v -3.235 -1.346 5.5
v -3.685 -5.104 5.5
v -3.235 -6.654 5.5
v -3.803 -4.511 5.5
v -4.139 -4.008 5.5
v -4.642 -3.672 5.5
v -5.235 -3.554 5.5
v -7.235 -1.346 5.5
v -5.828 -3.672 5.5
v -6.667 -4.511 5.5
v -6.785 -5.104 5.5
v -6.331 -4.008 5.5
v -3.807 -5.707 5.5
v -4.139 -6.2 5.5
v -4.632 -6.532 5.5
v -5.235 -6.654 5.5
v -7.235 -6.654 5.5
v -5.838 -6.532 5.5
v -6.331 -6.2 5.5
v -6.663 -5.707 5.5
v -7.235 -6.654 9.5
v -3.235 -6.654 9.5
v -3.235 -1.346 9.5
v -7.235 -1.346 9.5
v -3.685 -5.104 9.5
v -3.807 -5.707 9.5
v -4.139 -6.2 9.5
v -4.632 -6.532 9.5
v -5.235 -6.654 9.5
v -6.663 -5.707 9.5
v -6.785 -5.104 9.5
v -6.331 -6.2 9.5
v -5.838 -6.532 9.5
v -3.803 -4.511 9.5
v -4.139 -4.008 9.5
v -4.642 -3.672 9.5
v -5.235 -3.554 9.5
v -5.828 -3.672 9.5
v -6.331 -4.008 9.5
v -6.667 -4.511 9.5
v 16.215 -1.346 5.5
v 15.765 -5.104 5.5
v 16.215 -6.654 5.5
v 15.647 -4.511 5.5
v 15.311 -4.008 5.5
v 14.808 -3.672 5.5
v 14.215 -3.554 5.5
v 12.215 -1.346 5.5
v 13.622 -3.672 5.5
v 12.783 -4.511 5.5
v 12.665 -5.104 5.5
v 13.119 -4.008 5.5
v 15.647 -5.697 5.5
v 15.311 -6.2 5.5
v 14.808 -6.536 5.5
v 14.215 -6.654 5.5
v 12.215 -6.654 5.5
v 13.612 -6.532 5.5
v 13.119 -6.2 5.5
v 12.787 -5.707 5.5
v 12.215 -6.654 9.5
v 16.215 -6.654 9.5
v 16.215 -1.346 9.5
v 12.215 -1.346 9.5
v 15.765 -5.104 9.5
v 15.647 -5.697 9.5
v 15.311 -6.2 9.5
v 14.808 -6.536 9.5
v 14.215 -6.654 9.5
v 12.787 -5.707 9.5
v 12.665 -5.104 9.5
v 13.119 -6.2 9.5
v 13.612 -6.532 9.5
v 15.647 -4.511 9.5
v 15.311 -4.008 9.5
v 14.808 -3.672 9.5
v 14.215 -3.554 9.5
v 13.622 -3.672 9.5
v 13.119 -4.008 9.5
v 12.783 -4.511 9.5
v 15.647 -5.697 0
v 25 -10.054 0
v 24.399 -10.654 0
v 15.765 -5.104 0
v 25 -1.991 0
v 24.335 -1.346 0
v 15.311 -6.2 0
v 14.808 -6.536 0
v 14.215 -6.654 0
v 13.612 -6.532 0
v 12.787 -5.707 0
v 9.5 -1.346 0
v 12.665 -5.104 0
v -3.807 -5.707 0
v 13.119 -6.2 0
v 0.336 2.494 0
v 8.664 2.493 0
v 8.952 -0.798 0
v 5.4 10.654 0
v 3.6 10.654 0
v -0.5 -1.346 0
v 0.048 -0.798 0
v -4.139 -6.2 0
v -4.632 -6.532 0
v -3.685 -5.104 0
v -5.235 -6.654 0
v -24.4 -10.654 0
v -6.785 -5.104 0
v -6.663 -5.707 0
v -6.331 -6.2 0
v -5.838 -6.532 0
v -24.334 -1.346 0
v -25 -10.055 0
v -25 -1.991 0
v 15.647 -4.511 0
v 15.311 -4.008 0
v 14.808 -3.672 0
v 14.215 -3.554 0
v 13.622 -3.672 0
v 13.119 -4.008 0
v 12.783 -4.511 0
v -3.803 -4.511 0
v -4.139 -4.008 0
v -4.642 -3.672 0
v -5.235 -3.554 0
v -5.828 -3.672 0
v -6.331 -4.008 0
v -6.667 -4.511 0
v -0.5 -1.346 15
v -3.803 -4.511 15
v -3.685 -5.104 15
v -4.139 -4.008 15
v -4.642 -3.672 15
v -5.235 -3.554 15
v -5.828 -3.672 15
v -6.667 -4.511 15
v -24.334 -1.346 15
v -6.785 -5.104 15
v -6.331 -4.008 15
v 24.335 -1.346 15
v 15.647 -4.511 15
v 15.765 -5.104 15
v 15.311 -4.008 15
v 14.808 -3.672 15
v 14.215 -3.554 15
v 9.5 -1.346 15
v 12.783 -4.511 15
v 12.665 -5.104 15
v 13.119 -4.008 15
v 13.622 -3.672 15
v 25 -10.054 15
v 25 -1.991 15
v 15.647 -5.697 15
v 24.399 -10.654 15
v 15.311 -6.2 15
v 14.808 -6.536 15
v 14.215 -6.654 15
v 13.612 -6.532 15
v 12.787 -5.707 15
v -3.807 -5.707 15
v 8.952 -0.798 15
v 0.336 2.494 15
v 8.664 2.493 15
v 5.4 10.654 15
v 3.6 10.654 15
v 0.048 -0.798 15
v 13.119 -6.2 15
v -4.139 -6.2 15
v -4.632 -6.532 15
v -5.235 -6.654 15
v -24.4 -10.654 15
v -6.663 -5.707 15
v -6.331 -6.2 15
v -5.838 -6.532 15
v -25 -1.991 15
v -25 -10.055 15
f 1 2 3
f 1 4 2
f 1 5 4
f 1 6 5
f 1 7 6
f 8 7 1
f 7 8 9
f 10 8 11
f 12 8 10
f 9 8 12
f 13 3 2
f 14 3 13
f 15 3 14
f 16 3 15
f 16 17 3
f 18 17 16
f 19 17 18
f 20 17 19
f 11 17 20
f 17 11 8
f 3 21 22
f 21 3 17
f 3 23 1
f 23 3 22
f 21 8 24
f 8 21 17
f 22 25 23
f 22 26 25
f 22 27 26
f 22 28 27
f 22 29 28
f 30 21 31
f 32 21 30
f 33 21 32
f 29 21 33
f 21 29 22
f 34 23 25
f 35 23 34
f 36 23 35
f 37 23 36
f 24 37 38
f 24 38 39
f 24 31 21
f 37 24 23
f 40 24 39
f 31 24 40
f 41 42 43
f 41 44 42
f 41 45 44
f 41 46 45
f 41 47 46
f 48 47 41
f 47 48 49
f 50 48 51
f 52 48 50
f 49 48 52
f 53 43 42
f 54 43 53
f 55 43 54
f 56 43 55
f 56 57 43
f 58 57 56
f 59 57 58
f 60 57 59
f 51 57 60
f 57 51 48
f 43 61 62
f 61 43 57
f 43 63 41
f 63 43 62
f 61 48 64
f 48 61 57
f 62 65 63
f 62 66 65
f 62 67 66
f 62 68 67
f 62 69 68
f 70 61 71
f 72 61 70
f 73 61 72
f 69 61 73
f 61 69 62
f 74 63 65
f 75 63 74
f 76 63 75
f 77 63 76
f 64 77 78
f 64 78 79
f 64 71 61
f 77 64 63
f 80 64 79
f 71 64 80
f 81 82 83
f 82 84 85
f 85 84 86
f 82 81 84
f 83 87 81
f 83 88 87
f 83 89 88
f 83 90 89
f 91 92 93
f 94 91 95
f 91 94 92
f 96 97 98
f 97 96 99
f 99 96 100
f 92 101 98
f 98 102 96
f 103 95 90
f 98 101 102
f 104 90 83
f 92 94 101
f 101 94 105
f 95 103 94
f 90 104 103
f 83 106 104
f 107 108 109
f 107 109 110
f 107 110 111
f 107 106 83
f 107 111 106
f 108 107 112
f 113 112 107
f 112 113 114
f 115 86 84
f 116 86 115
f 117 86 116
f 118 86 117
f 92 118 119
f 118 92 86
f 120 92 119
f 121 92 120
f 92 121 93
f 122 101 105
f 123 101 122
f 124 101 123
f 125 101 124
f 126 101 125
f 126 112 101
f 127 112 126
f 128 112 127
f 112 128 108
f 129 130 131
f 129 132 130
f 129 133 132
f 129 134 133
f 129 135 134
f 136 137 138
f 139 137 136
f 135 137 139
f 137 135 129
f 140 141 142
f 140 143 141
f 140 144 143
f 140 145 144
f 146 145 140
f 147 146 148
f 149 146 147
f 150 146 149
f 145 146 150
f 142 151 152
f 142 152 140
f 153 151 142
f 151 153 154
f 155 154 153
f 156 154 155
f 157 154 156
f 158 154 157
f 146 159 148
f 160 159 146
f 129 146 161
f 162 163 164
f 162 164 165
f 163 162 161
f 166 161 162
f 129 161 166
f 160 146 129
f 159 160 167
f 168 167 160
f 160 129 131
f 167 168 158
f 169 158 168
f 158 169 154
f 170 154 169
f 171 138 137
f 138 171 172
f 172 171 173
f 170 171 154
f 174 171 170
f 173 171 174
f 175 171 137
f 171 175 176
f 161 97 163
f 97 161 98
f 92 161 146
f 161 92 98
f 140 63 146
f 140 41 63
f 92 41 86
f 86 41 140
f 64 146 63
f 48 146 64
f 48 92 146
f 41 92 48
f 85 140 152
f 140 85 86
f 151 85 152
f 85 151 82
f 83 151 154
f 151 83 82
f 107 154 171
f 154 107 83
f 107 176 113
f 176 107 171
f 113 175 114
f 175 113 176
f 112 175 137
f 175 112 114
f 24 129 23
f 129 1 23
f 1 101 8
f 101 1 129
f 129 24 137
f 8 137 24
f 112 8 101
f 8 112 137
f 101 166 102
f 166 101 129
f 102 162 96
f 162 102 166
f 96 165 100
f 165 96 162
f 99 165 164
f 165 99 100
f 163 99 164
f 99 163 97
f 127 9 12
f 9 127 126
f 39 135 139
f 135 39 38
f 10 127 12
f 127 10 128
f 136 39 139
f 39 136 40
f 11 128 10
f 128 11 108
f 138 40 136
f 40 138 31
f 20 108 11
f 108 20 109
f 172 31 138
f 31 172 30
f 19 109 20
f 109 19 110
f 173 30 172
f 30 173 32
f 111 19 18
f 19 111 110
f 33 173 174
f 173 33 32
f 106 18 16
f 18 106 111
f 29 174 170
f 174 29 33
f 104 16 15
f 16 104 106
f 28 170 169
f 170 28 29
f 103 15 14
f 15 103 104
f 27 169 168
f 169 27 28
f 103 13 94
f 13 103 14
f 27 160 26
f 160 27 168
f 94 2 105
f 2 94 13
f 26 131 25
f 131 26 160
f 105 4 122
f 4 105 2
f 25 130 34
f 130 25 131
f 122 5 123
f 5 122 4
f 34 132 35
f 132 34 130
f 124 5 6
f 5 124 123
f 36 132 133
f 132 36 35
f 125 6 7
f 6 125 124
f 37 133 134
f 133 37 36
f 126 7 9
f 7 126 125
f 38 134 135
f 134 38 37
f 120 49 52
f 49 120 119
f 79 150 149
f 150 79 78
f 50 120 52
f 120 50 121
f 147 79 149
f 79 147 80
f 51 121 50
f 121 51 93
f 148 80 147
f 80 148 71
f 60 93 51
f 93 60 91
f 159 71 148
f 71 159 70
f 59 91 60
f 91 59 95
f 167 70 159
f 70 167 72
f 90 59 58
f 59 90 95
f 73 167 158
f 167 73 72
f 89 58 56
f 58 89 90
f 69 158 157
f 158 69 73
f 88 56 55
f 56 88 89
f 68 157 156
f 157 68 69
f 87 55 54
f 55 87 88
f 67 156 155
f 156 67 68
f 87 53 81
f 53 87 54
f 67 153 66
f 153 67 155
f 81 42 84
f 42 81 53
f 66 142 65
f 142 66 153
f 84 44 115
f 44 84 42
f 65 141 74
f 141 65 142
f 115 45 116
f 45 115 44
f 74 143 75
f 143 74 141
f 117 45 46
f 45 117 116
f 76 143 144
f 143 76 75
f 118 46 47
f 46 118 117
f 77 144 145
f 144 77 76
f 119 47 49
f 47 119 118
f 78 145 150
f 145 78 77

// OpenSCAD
// Generated by inkscape 0.92.4 + inkscape-paths2openscad 0.25
// Sun Sep  8 19:53:22 2019 from "stollen50x21+08p.svg"

// Module names are of the form poly_<inkscape-path-id>().  As a result,
// you can associate a polygon in this OpenSCAD program with the corresponding
// SVG element in the Inkscape document by looking for the XML element with
// the attribute id="inkscape-path-id".

// fudge value is used to ensure that subtracted solids are a tad taller
// in the z dimension than the polygon being subtracted from.  This helps
// keep the resulting .stl file manifold.
fudge = 0.1;
zsize = 15;
line_fn = 4;
min_line_width = 0.600000023842;
line_width_scale = 1.0;
function min_line_mm(w) = max(min_line_width, w * line_width_scale) * 96/25.4;


rect849_0_center = [-19.786020,11.920249];
rect849_0_points = [[-27.345076,-1.308099],[-12.226964,-1.308099],[-12.226964,25.148597],[-27.345076,25.148597],[-27.345076,-1.308099]];
module poly_rect849(h, w, s, res=line_fn)
{
  scale([25.4/96, -25.4/96, 1]) union()
  {
    translate (rect849_0_center) linear_extrude(height=h, convexity=10, scale=0.01*s)
      translate (-rect849_0_center) polygon(rect849_0_points);
  }
}

rect851_0_center = [53.725758,11.920249];
rect851_0_points = [[46.166702,-1.308099],[61.284814,-1.308099],[61.284814,25.148597],[46.166702,25.148597],[46.166702,-1.308099]];
module poly_rect851(h, w, s, res=line_fn)
{
  scale([25.4/96, -25.4/96, 1]) union()
  {
    translate (rect851_0_center) linear_extrude(height=h, convexity=10, scale=0.01*s)
      translate (-rect851_0_center) polygon(rect851_0_points);
  }
}

path972_0_center = [0.000000,0.000000];
path972_0_points = [[13.606447,-40.267581],[1.270506,-9.425784],[0.182616,3.015627],[-1.889654,5.087888],[-91.971691,5.087888],[-94.487316,7.523438],[-94.487316,38.001961],[-92.221691,40.267581],[92.217786,40.267581],[94.487316,37.998051],[94.487316,7.523438],[91.973646,5.087888],[35.905280,5.087888],[33.834960,3.017577],[32.747069,-9.423824],[20.409178,-40.267581],[13.606447,-40.267581],[13.606447,-40.267581],[-19.786136,13.431638],[-17.544277,13.877922],[-15.643869,15.148178],[-14.374249,17.049011],[-13.928715,19.291019],[-14.389245,21.570844],[-15.644562,23.432593],[-17.506311,24.687910],[-19.786136,25.148440],[-22.065962,24.687910],[-23.927711,23.432593],[-25.183029,21.570844],[-25.643559,19.291019],[-25.198025,17.049010],[-23.928404,15.148178],[-22.027996,13.877922],[-19.786136,13.431638],[-19.786136,13.431638],[53.725592,13.431638],[55.968049,13.877362],[57.869119,15.147489],[59.139242,17.048561],[59.584962,19.291019],[59.138679,21.532876],[57.868426,23.433282],[55.967597,24.702903],[53.725592,25.148440],[51.445767,24.687910],[49.584018,23.432593],[48.328701,21.570844],[47.868171,19.291019],[48.313705,17.049011],[49.583325,15.148178],[51.483733,13.877922],[53.725592,13.431638],[53.725592,13.431638]];
path972_0_paths = [[0,1,2,3,4,5,6,7,8,9,10,11,12,13,14,15,16,17],
				[18,19,20,21,22,23,24,25,26,27,28,29,30,31,32,33,34,35],
				[36,37,38,39,40,41,42,43,44,45,46,47,48,49,50,51,52,53]];
module poly_path972(h, w, s, res=line_fn)
{
  scale([25.4/96, -25.4/96, 1]) union()
  {
    translate (path972_0_center) linear_extrude(height=h, convexity=10, scale=0.01*s)
      translate (-path972_0_center) polygon(path972_0_points, path972_0_paths);
  }
}

module stollen50x2108p(h)
{
  difference()
  {
    union()
    {
      translate ([0,0,0]) poly_path972(15, min_line_mm(0.75590545), 100.0);
    }
    union()
    {
      translate ([0,0,5.5]) poly_rect849(4, min_line_mm(0.0), 100.0);
      translate ([0,0,5.5]) poly_rect851(4, min_line_mm(0.0), 100.0);
    }
  }
}

stollen50x2108p(zsize);
